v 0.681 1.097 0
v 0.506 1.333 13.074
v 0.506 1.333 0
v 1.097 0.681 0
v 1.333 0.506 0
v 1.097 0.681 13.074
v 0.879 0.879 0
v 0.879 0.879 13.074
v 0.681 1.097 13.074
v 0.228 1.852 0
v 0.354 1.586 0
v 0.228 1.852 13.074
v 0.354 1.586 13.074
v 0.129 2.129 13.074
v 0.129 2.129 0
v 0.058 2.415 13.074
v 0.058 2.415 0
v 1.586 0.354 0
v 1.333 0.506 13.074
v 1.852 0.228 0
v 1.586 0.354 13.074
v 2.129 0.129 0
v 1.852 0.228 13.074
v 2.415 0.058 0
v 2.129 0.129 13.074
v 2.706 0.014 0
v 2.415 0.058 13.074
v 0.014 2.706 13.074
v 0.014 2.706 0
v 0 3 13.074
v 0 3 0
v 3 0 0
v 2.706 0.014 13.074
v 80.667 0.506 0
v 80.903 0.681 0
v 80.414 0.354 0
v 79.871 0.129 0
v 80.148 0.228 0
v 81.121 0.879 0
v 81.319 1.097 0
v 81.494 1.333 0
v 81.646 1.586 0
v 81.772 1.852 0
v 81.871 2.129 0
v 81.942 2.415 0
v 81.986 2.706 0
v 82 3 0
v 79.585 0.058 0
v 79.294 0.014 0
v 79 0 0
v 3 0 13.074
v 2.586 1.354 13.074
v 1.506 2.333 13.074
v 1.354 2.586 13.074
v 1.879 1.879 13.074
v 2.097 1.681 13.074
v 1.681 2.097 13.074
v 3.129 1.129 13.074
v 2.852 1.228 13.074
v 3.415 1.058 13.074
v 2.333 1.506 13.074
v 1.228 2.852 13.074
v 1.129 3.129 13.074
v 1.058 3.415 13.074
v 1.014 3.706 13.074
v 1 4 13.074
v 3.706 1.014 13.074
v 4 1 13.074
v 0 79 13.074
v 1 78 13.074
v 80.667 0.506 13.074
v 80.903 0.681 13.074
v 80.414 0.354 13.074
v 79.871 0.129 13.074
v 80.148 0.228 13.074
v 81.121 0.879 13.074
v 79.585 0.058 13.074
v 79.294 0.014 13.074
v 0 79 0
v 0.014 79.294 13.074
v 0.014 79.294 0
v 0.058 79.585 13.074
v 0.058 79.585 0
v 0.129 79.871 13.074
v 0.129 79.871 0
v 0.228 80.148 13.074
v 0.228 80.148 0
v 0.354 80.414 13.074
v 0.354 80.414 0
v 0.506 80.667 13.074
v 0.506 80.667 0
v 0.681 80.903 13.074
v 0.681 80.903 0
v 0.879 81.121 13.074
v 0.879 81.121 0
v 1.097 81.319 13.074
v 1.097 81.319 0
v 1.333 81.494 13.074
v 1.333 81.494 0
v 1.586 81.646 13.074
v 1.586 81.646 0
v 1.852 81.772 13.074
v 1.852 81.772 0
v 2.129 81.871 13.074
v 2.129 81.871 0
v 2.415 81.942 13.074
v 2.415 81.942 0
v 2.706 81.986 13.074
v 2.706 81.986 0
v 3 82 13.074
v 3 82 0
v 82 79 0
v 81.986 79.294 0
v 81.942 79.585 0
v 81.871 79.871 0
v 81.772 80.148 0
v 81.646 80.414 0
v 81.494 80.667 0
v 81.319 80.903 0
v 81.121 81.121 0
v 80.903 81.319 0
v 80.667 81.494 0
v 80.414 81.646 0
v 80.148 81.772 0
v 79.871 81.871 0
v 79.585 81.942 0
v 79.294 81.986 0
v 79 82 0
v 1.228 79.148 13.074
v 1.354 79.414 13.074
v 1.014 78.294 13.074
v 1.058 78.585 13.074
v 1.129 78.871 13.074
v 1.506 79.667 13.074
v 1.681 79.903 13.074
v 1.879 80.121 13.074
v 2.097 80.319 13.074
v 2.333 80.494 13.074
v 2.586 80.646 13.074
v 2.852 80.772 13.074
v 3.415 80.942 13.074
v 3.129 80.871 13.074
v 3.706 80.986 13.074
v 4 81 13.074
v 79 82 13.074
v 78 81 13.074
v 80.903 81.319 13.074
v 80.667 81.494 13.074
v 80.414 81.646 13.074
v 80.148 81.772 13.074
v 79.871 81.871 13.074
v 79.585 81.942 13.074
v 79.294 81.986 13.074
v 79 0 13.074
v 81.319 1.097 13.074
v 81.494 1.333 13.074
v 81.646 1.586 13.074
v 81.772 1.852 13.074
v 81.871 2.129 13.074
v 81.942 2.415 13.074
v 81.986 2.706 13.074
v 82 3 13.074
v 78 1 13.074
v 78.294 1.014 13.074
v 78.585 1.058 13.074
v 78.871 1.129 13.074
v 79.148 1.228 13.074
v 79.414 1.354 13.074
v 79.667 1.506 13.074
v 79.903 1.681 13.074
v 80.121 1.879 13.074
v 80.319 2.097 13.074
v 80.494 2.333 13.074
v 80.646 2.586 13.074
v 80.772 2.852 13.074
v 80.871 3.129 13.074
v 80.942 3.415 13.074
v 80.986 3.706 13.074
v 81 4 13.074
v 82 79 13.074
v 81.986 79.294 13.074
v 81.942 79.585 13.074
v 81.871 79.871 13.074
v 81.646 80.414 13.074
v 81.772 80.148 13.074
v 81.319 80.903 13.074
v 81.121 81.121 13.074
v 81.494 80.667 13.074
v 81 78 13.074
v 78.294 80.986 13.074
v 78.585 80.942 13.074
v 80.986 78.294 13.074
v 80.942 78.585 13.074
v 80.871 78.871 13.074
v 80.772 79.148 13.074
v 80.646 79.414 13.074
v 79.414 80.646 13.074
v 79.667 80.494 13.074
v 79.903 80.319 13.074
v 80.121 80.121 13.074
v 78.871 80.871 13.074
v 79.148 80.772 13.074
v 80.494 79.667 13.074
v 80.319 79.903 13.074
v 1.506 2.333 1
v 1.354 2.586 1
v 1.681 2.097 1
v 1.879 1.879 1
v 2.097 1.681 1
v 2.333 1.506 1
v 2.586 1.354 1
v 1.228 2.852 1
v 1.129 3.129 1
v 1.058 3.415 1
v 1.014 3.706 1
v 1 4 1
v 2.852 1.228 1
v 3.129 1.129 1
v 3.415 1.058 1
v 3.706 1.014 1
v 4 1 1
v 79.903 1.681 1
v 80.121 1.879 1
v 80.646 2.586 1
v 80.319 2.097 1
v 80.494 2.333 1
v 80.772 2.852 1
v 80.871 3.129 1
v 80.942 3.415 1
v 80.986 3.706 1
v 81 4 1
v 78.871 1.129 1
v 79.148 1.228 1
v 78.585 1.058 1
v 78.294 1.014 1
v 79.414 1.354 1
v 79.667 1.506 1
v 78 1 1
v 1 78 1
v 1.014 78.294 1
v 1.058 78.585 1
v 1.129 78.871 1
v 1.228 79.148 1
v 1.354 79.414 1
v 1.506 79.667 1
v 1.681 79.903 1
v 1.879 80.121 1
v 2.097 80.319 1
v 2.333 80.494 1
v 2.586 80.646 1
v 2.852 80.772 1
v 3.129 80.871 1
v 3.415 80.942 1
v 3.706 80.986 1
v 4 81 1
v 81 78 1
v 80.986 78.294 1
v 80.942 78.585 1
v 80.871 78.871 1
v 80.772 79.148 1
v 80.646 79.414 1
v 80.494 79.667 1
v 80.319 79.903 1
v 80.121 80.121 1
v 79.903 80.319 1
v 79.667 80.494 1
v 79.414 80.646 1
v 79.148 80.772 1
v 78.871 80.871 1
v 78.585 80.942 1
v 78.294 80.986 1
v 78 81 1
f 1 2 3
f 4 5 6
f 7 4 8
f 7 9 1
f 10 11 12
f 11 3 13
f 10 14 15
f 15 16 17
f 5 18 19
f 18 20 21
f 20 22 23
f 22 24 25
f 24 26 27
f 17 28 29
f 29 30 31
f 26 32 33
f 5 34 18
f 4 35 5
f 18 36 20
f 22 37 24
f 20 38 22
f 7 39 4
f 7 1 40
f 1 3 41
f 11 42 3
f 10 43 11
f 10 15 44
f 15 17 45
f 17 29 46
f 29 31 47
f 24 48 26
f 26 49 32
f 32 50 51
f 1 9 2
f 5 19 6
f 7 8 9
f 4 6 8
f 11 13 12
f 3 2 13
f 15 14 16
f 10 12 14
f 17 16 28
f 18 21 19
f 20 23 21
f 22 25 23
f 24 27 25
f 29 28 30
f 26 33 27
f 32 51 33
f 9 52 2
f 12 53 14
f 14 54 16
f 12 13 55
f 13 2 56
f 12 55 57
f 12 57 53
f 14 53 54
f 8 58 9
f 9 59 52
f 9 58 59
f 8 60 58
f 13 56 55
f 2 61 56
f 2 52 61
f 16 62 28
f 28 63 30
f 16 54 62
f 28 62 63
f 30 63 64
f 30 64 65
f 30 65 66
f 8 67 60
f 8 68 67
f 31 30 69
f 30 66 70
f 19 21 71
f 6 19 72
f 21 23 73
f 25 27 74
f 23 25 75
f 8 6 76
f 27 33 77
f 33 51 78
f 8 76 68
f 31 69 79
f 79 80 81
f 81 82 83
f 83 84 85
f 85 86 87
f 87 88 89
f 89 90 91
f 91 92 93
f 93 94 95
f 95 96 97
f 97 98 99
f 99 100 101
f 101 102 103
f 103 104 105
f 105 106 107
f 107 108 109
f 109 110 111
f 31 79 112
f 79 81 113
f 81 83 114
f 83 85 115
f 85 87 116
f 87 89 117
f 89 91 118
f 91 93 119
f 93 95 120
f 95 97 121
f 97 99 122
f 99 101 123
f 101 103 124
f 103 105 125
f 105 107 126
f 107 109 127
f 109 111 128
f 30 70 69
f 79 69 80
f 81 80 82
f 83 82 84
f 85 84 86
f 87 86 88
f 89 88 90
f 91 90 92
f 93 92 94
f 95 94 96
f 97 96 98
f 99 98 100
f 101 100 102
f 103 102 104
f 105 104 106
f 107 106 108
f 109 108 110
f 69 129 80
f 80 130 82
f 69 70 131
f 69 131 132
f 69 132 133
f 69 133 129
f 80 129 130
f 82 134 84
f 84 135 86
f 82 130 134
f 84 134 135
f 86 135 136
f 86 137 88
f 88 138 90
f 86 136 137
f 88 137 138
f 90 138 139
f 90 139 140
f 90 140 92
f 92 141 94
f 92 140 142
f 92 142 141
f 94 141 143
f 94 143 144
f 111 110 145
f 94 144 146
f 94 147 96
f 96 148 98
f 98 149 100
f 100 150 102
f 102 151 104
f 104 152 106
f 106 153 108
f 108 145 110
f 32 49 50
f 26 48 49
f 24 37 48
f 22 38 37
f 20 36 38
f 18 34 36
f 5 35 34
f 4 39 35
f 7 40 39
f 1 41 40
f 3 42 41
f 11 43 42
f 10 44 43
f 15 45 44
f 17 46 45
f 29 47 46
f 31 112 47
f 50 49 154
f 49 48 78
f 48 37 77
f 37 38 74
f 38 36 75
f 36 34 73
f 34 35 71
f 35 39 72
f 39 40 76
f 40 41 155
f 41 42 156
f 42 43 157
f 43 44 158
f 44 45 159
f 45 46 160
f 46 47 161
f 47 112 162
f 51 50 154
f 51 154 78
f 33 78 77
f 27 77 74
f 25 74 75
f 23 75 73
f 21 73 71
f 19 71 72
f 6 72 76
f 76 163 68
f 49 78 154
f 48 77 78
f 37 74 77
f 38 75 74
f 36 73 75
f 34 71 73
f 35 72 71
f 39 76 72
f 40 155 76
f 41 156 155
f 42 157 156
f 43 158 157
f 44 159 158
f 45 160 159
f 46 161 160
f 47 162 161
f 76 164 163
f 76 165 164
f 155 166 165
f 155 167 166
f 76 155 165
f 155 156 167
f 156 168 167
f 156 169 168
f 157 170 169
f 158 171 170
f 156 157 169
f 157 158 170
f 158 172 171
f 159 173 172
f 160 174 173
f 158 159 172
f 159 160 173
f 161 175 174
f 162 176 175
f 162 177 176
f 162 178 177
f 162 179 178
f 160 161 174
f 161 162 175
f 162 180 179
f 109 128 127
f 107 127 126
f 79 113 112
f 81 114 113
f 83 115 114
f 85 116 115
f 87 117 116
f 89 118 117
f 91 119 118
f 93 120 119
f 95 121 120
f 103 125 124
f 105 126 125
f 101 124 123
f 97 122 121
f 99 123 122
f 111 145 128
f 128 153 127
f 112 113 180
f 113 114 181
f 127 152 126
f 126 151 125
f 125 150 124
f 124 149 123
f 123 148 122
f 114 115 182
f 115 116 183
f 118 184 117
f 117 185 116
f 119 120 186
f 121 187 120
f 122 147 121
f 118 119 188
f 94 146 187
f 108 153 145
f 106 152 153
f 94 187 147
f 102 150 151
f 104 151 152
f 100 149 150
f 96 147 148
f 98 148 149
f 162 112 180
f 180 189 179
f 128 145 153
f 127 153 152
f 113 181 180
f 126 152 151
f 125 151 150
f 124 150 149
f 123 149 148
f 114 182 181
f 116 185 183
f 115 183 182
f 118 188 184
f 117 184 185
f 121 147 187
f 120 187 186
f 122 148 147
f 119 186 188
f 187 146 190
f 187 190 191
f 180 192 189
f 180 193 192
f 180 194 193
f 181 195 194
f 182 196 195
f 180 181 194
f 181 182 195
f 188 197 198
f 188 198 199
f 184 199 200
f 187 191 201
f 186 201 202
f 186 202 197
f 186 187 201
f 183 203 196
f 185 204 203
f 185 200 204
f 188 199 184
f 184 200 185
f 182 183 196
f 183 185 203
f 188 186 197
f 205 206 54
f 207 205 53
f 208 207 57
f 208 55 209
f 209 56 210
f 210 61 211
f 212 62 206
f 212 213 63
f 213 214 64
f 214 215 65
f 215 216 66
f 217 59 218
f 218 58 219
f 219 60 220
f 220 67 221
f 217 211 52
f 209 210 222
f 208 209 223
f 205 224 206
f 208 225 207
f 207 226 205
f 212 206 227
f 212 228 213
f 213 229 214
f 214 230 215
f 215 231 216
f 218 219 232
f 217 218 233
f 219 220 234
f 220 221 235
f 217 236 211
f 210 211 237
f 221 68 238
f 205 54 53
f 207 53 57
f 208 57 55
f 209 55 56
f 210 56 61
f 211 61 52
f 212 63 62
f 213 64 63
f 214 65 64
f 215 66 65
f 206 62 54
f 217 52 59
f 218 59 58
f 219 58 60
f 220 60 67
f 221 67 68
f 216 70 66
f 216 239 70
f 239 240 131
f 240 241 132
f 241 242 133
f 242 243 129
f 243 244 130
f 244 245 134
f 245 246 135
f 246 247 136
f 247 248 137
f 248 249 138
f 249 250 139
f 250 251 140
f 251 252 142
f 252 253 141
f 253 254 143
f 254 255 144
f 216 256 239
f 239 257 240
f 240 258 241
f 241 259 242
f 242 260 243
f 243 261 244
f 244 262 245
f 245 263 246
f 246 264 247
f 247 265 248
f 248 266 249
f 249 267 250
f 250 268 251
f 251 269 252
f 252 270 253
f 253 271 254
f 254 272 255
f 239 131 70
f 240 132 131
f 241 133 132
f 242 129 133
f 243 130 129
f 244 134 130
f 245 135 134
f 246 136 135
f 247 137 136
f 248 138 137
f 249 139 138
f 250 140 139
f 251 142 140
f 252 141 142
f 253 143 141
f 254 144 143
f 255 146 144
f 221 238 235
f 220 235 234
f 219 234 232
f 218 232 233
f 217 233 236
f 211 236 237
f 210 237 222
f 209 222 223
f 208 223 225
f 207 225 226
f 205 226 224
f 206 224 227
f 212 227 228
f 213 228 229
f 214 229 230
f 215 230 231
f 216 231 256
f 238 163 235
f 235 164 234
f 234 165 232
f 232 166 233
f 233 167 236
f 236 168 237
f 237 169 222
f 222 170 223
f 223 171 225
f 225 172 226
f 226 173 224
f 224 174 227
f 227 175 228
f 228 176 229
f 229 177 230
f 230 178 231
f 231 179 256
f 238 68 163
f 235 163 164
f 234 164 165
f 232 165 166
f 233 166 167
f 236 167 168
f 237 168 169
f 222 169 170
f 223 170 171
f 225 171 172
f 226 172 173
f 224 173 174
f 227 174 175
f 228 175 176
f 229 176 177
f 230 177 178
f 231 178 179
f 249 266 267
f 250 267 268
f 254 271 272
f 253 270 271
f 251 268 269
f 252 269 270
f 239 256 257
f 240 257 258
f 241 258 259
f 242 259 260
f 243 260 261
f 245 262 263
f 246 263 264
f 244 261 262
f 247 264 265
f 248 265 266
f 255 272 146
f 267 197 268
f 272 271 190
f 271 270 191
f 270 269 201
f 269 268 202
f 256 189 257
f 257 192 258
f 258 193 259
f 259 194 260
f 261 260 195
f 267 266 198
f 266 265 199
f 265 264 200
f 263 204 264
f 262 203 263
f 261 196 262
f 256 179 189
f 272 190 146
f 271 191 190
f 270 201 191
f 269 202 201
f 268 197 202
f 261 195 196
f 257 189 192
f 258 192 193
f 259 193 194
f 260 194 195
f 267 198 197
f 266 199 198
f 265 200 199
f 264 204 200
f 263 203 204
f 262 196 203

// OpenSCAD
// file: mixin.scad
$fn = 64;

POT_EDGE = 82;
POT_HEIGHT = 82;
WALL_WIDTH = 1;
CORNER_RADIUS = 3;

LEG_ANGLE = 55;
LEG_SLOPE = 1 / tan(LEG_ANGLE);
LEG_WIDTH = 6;
LEG_LENGTH = POT_HEIGHT / 7;

PIN_LENGTH = LEG_LENGTH - WALL_WIDTH * 2;
PIN_WIDTH = 3;
PIN_HEIGHT = POT_EDGE / 2 + POT_EDGE / 8;
FIT_GAP = 0.36;
OVERCUT = 0.1;

FIRST_LEG_Y = WALL_WIDTH + FIT_GAP;
SECOND_LEG_Y = POT_EDGE - LEG_WIDTH - WALL_WIDTH - FIT_GAP;

SLOT_WIDTH = 3;
SLOT_STEP = 6;

module rounded_box(size = [10, 10, 5], corner_radius = CORNER_RADIUS) {
  translate([size[0] / 2, size[1] / 2, 0]) {
    linear_extrude(height=size[2]) {
      minkowski() {
        square([size[0] - 2 * corner_radius, size[1] - 2 * corner_radius], center=true);
        circle(r=corner_radius);
      }
    }
  }
}

function leg_profile(slope) = let(
  underside_z0 = WALL_WIDTH,
  underside_z1 = WALL_WIDTH + slope * LEG_LENGTH,
  top_z = POT_EDGE / 2 - FIT_GAP
) [
  [0, underside_z0],
  [LEG_LENGTH, underside_z1],
  [LEG_LENGTH, top_z],
  [0, top_z],
];

function pin_profile(slope, pin_length) = let(
  x0 = (LEG_LENGTH - pin_length) / 2,
  x1 = (LEG_LENGTH + pin_length) / 2,
  floor_z0 = WALL_WIDTH * 2 + slope * x0,
  floor_z1 = WALL_WIDTH * 2 + slope * x1,
  top_z = WALL_WIDTH * 2 + PIN_HEIGHT
) [
  [x0, floor_z0],
  [x1, floor_z1],
  [x1, top_z],
  [x0, top_z],
];

module extruded_profile(profile, width) {
  translate([0, width, 0]) rotate([90, 0, 0])
    linear_extrude(height=width) polygon(points=profile);
}

module leg_with_pin(slope) {
  extruded_profile(leg_profile(slope), LEG_WIDTH);
  translate([0, (LEG_WIDTH - PIN_WIDTH) / 2, 0])
    extruded_profile(pin_profile(slope, PIN_LENGTH), PIN_WIDTH);
}

module leg_with_socket(slope) {
  difference() {
    extruded_profile(leg_profile(slope), LEG_WIDTH);
    translate([0, (LEG_WIDTH - PIN_WIDTH - FIT_GAP) / 2, 0])
      extruded_profile(pin_profile(slope, PIN_LENGTH + FIT_GAP), PIN_WIDTH + FIT_GAP);
  }
}

module bottom_slots() {
  between_legs_span = POT_EDGE - 2 * (CORNER_RADIUS + LEG_WIDTH);
  slot_count_half = floor((between_legs_span / 2 - SLOT_WIDTH / 2) / SLOT_STEP);
  for (slot_index = [-slot_count_half:slot_count_half])
    translate([WALL_WIDTH, POT_EDGE / 2 + slot_index * SLOT_STEP - SLOT_WIDTH / 2, -OVERCUT])
      cube([POT_EDGE, SLOT_WIDTH, WALL_WIDTH + OVERCUT * 2]);
}

module pot_shell() {
  rotate([0, -90, 0]) difference() {
    rounded_box([POT_EDGE, POT_EDGE, POT_HEIGHT]);
    translate([WALL_WIDTH, WALL_WIDTH, WALL_WIDTH])
      rounded_box([
        POT_EDGE - WALL_WIDTH * 2,
        POT_EDGE - WALL_WIDTH * 2,
        POT_HEIGHT + WALL_WIDTH * 2,
      ]);
    translate([POT_EDGE / 2, -WALL_WIDTH, -WALL_WIDTH])
      cube([POT_EDGE, POT_EDGE + WALL_WIDTH * 2, POT_HEIGHT * 2]);

    bottom_slots();
  }

  translate([-POT_HEIGHT, WALL_WIDTH, WALL_WIDTH]) cube([WALL_WIDTH, POT_EDGE - WALL_WIDTH * 2, LEG_WIDTH]);
}
// main file
include <mixin.scad>;

module outer_shell() {
  outer_extent = POT_EDGE;

  difference() {
    rounded_box([outer_extent, outer_extent, LEG_LENGTH + WALL_WIDTH + FIT_GAP]);
    translate([WALL_WIDTH, WALL_WIDTH, WALL_WIDTH])
      rounded_box([
        outer_extent - WALL_WIDTH * 2,
        outer_extent - WALL_WIDTH * 2,
        LEG_LENGTH + WALL_WIDTH * 2,
      ]);
  }
}

outer_shell();
